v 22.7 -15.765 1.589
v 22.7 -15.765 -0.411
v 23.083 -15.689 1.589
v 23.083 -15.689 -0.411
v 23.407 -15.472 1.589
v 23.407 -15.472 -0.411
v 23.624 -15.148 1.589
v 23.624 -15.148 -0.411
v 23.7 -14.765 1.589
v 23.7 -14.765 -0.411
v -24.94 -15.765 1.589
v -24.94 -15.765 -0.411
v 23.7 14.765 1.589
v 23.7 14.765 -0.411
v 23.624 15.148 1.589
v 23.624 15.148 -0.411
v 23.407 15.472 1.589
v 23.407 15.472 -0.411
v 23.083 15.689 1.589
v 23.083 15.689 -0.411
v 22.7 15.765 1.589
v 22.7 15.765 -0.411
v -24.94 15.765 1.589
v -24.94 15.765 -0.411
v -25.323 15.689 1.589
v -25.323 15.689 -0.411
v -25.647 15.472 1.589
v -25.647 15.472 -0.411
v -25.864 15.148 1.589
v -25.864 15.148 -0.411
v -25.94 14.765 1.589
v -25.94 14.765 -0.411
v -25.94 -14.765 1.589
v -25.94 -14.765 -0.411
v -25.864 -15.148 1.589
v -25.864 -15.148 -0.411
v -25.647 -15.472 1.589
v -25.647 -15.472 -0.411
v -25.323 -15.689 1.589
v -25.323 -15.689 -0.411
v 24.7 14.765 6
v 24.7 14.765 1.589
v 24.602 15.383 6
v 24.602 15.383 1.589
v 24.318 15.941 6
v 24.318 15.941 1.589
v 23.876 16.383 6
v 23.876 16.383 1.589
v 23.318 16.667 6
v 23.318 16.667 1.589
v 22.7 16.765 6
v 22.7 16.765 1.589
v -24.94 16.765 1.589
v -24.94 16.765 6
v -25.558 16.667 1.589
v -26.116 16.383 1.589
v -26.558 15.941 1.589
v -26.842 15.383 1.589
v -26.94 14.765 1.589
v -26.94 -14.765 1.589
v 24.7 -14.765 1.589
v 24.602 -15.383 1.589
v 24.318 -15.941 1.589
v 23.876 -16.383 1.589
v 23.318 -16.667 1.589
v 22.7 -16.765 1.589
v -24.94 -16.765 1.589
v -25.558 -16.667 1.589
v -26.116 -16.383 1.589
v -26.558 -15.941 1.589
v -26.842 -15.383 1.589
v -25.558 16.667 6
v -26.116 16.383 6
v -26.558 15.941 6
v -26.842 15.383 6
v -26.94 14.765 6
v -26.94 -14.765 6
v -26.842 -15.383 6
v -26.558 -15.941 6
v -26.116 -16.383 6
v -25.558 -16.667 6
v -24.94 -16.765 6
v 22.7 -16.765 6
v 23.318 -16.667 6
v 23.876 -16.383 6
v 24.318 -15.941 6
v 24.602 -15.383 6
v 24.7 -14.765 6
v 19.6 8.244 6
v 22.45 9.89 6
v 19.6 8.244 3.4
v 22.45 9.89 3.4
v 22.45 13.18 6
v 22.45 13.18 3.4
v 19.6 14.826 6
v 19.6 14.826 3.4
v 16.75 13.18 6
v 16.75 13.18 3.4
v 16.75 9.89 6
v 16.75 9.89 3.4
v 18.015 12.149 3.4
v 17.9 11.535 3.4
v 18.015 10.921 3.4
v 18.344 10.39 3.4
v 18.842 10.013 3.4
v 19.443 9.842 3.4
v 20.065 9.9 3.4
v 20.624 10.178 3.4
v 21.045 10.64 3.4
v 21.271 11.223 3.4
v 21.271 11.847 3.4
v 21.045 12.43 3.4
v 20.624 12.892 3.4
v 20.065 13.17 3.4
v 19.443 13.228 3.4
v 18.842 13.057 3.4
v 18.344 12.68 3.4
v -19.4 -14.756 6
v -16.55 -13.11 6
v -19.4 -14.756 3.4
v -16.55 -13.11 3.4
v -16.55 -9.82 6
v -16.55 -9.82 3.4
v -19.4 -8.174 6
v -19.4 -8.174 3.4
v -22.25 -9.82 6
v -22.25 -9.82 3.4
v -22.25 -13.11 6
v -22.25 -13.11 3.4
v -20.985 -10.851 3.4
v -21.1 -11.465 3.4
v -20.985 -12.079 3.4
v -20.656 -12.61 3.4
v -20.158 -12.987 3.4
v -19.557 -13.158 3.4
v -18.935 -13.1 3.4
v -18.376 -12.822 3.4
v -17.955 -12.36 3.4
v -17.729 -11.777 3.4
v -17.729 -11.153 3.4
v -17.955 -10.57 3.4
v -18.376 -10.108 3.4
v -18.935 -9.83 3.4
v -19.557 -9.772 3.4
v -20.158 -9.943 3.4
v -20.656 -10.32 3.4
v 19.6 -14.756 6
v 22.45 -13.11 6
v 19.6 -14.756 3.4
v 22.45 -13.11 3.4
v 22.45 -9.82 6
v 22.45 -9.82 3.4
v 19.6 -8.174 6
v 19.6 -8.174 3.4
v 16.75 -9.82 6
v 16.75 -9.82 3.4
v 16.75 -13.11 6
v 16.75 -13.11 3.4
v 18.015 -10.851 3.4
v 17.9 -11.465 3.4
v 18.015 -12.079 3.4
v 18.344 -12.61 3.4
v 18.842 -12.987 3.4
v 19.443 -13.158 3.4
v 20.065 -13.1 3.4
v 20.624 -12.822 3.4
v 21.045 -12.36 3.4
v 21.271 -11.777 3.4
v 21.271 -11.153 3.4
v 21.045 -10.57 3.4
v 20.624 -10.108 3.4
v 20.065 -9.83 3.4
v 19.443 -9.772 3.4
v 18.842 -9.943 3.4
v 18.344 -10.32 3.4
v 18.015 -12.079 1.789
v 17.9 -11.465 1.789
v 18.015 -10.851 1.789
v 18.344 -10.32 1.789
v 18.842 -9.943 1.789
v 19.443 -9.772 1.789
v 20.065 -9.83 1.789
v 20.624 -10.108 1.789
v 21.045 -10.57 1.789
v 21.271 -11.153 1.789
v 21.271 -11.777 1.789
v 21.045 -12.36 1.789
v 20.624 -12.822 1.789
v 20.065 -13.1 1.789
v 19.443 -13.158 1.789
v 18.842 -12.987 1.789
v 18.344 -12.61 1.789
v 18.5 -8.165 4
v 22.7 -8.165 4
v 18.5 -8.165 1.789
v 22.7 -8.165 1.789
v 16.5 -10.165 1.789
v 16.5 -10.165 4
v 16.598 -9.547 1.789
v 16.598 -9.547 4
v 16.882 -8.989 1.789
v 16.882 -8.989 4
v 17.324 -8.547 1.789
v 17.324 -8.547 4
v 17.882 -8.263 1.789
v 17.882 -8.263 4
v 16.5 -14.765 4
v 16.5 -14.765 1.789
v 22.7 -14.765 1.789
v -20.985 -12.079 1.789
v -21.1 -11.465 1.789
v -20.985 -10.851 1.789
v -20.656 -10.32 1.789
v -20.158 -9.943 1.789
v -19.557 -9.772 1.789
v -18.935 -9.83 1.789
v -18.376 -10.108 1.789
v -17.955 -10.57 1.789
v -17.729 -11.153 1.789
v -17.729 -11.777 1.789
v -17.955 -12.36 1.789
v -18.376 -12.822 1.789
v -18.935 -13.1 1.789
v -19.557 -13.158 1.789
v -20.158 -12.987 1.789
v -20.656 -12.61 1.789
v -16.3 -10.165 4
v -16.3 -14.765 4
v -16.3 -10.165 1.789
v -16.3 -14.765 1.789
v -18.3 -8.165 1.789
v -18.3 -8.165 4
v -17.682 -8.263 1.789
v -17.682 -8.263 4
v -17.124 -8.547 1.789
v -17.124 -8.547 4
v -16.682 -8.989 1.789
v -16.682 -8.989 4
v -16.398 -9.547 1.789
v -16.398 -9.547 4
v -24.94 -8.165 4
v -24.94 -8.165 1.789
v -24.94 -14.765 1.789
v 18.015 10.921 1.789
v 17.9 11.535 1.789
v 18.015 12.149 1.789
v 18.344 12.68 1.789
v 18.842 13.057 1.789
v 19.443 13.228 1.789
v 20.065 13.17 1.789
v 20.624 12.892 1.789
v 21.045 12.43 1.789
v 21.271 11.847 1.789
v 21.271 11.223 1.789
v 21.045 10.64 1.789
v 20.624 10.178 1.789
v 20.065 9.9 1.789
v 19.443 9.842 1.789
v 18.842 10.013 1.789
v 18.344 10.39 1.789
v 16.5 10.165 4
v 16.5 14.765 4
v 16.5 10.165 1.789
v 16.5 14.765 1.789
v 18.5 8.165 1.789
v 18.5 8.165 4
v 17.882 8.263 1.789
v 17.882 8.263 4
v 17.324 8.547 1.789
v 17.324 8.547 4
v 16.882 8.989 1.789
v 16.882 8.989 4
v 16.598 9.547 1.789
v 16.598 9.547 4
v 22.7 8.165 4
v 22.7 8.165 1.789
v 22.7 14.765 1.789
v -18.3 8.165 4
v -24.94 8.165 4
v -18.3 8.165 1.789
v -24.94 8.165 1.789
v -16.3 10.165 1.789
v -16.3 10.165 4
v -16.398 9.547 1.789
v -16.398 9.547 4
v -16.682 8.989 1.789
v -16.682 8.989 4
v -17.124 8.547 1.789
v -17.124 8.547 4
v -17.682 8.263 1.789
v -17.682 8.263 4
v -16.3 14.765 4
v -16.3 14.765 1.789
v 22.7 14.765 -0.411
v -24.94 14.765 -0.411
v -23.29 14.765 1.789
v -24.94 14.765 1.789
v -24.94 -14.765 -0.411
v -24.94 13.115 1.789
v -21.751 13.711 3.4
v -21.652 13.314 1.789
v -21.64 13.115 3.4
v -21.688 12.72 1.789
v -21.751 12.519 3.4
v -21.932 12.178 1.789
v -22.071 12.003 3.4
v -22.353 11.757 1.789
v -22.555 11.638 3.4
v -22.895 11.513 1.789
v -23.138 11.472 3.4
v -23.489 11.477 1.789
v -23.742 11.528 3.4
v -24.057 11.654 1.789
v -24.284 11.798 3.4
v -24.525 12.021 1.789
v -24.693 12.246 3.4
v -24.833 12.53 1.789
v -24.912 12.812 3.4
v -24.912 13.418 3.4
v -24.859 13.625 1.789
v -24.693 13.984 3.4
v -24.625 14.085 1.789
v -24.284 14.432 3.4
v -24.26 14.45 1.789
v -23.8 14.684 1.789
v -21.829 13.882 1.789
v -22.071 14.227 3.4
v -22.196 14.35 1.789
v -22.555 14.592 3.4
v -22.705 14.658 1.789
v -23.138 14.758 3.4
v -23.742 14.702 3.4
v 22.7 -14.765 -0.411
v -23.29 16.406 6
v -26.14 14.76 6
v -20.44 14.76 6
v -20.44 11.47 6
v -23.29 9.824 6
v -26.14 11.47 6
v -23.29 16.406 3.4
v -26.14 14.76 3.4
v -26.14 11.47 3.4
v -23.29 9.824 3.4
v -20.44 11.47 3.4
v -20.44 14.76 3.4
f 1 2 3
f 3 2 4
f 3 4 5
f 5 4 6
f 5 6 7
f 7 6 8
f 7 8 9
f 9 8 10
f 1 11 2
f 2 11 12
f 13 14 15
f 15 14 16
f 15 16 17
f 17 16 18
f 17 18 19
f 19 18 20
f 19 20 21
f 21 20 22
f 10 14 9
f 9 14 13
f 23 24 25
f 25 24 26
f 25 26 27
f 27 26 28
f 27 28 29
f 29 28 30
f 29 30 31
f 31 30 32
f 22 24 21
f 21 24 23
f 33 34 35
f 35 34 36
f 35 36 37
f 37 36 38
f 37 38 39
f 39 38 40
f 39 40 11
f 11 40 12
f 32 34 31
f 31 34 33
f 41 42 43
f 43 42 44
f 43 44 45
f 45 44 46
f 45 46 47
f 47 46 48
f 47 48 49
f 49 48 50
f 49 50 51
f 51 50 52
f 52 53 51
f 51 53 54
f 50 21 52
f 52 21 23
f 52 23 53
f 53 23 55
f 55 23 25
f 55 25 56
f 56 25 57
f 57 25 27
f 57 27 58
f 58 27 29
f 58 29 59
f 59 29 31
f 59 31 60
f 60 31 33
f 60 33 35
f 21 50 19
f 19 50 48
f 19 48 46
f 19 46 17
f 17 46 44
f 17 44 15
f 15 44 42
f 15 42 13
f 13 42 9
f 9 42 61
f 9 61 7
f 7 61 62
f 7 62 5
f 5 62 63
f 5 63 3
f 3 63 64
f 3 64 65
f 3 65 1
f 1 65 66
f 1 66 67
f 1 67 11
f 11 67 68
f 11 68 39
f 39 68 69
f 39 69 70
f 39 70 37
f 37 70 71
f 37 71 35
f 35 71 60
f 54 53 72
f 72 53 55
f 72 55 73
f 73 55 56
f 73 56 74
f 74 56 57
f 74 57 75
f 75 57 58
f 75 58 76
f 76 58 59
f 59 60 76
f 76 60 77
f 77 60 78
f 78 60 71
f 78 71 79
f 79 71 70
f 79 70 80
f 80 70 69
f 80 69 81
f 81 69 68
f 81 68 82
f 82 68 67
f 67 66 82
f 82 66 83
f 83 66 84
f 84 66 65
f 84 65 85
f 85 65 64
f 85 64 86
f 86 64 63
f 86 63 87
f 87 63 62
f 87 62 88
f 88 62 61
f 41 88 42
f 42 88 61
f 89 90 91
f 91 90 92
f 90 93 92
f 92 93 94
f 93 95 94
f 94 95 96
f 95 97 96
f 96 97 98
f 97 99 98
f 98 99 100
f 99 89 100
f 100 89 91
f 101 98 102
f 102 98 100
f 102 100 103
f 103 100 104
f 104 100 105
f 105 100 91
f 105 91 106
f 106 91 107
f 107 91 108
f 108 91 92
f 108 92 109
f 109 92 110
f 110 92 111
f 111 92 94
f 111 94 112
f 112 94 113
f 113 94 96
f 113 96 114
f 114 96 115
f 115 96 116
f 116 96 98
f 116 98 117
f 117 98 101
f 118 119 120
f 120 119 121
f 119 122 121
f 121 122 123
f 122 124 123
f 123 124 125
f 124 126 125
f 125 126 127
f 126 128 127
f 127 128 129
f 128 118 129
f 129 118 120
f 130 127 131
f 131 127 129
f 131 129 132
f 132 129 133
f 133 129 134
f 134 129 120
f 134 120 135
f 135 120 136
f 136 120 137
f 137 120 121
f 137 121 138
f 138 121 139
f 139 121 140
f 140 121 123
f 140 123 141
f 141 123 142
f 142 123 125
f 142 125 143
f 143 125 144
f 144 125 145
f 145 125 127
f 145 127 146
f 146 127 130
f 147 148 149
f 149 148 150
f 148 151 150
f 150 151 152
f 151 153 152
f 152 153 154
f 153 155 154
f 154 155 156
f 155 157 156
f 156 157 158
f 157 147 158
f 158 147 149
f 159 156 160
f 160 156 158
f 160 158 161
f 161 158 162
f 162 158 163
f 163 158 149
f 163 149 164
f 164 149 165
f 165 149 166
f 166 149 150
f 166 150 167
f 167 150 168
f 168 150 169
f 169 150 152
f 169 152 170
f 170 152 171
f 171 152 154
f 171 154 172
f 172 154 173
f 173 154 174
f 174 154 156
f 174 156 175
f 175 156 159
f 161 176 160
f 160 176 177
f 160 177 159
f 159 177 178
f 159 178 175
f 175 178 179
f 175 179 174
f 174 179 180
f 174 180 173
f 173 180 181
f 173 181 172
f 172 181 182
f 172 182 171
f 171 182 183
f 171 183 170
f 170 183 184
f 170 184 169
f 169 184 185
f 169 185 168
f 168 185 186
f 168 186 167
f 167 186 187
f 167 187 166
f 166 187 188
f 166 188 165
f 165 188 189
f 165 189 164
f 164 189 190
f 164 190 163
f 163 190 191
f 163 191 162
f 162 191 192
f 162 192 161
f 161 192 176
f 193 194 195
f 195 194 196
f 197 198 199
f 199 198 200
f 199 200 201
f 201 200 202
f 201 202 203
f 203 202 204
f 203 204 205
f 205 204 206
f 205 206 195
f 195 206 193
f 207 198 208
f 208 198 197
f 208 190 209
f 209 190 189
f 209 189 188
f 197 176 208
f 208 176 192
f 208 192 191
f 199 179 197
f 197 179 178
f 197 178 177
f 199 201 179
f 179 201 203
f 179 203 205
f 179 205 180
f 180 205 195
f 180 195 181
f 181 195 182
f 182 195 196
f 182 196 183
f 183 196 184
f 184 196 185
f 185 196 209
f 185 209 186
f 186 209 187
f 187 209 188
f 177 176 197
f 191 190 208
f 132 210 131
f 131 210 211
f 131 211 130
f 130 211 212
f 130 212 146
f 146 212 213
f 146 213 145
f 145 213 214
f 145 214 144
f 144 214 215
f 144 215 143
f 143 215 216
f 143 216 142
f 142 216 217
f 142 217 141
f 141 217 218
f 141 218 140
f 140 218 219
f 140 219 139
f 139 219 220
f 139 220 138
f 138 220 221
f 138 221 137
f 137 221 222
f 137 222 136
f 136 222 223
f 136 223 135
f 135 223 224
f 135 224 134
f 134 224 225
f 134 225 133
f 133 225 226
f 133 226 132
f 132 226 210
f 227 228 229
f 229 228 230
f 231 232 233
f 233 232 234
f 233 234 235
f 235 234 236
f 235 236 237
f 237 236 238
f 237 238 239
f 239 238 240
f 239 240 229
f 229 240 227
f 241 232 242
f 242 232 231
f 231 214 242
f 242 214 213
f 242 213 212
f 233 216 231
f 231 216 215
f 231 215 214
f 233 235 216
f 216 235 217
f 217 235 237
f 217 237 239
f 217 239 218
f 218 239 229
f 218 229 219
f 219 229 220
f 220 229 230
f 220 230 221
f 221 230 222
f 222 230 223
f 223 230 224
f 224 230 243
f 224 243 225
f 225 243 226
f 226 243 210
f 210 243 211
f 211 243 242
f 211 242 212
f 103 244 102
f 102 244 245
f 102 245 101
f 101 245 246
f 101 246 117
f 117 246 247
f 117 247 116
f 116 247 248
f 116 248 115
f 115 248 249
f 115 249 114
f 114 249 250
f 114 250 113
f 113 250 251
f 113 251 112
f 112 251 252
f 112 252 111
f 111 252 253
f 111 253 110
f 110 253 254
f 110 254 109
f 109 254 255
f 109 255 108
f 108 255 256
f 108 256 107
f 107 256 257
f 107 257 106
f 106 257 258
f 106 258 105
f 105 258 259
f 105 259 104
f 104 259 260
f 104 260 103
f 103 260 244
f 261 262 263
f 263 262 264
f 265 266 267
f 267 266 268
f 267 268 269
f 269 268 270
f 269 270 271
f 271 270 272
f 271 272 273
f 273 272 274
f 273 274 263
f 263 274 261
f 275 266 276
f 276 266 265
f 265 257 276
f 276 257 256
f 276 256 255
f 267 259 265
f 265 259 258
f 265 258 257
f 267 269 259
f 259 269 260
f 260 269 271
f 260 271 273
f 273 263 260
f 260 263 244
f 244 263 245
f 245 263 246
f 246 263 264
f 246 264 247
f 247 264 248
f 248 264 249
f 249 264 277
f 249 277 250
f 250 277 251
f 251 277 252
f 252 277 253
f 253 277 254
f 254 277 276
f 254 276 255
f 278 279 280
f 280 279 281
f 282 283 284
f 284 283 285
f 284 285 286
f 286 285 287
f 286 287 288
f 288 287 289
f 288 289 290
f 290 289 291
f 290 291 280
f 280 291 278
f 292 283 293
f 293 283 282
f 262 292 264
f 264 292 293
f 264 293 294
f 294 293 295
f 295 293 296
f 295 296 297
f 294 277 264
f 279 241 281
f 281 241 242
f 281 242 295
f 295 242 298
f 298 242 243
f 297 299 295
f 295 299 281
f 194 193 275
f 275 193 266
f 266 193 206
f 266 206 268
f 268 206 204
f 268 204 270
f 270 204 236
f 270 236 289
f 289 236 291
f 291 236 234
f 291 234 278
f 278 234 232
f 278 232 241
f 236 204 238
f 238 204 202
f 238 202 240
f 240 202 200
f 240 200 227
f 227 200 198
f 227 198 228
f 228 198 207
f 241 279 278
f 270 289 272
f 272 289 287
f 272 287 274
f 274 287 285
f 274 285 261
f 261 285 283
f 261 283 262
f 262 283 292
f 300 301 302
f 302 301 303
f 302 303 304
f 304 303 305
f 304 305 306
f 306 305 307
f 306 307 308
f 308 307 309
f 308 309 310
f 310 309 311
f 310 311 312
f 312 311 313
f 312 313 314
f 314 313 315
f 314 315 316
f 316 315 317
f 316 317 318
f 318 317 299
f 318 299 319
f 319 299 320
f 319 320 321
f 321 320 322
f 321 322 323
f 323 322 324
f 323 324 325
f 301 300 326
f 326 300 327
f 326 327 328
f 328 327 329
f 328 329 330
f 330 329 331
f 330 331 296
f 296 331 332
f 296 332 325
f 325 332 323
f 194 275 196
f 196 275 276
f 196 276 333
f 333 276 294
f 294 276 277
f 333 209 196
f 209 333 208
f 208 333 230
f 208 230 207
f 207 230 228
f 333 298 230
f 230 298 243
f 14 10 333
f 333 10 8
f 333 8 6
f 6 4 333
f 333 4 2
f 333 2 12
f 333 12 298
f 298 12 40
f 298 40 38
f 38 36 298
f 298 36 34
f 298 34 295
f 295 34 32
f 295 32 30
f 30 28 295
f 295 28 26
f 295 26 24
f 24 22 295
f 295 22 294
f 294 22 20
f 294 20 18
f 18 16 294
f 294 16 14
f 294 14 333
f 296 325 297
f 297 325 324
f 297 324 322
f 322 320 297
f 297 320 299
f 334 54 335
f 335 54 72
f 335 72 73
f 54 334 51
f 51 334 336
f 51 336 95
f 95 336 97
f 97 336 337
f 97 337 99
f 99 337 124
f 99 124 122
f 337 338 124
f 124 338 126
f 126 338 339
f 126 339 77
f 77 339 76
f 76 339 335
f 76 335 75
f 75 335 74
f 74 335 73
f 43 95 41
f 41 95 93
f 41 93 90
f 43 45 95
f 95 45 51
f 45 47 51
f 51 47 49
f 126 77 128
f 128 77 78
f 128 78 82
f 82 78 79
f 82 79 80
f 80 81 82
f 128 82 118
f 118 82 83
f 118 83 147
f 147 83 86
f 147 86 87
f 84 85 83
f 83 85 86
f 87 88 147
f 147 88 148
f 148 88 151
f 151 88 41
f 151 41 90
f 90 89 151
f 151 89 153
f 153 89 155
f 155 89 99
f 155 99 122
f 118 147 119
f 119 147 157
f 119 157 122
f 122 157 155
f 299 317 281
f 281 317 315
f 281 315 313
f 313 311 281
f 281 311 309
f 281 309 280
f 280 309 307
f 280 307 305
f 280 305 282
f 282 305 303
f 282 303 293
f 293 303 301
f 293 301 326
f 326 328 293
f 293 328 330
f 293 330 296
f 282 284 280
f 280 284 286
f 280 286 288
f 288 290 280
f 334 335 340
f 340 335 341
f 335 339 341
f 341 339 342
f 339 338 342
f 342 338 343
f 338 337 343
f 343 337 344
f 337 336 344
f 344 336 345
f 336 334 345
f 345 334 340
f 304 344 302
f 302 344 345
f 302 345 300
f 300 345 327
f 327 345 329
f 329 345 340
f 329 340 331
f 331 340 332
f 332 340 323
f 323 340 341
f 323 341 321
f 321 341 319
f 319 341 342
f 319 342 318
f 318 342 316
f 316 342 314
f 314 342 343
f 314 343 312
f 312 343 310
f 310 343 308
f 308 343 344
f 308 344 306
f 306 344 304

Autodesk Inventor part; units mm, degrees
ref_plane "YZ Plane" through (0, 0, 0) normal (1, 0, 0) x (0, 1, 0)
ref_plane "Arbeitsebene1" through (0, 0, 6) normal (0, 0, 1) x (1, 0, 0)
sketch "Skizze3" plane through (0, 0, 6) normal (0, 0, 1) x (1, 0, 0)
  line L0 (22.5, -14.565) -> (22.5, 14.565) projected
  line L1 (-22.5, -14.565) -> (22.5, -14.565) projected
  line L2 (-22.5, 10.565) -> (-22.5, -14.565) projected
  line L3 (22.5, 14.565) -> (-18.5, 14.565) projected
  circle A0 centre (19.6, -11.465) radius 1.5 projected
  circle A1 centre (13.06, -2.125) radius 0.65 projected
  circle A2 centre (13.06, -4.665) radius 0.65 projected
  circle A3 centre (13.06, 0.415) radius 0.65 projected
  circle A4 centre (13.06, 2.955) radius 0.65 projected
  circle A5 centre (-2.18, 5.495) radius 0.65 projected
  circle A6 centre (13.06, 5.495) radius 0.65 projected
  circle A7 centre (19.6, 11.535) radius 1.5 projected
  circle A8 centre (13.06, 8.035) radius 0.65 projected
  circle A9 centre (13.06, 10.575) radius 0.65 projected
  circle A10 centre (-2.18, 8.035) radius 0.65 projected
  circle A11 centre (13.06, 13.115) radius 0.65 projected
  circle A12 centre (-2.18, 10.575) radius 0.65 projected
  circle A13 centre (-7.26, -6.945) radius 0.5 projected
  circle A14 centre (-2.18, -2.125) radius 0.65 projected
  circle A15 centre (-2.18, -4.665) radius 0.65 projected
  circle A16 centre (-12.34, -6.945) radius 0.5 projected
  circle A17 centre (-19.4, -11.465) radius 1.5 projected
  circle A18 centre (-7.26, -4.405) radius 0.5 projected
  circle A19 centre (-12.34, -4.405) radius 0.5 projected
  circle A20 centre (-2.18, 0.415) radius 0.65 projected
  circle A21 centre (-2.18, 13.115) radius 0.65 projected
  circle A22 centre (-2.18, 2.955) radius 0.65 projected
  circle A23 centre (-7.26, -1.865) radius 0.5 projected
  circle A24 centre (-12.34, -1.865) radius 0.5 projected
  circle A25 centre (-7.26, 0.675) radius 0.5 projected
  circle A26 centre (-12.34, 0.675) radius 0.5 projected
  line L4 (-24.7, -16.765) -> (24.7, -16.765)
  line L5 (24.7, -16.765) -> (24.7, 16.765)
  line L6 (24.7, 16.765) -> (-24.7, 16.765)
  line L7 (-24.7, 16.765) -> (-24.7, -16.765)
  line L8 (-24.34, 2.175) -> (-10.84, 2.175) projected
  line L9 (-10.84, 2.175) -> (-10.84, -8.525) projected
  line L10 (-10.84, -8.525) -> (-24.34, -8.525) projected
  line L11 (-24.34, -8.525) -> (-24.34, 2.175) projected
  circle A27 centre (-12.34, -1.865) radius 0.5 projected
  circle A28 centre (-12.34, -4.405) radius 0.5 projected
  circle A29 centre (-12.34, -6.945) radius 0.5 projected
  circle A30 centre (-12.34, 0.675) radius 0.5 projected
  circle A31 centre (-21.39, -0.725) radius 1.5 projected
  line L12 (24.7, 16.765) -> (-26.94, 16.765)
  line L13 (-26.94, 16.765) -> (-26.94, -16.765)
  line L14 (-26.94, -16.765) -> (24.7, -16.765)
  line L15 (24.7, -16.765) -> (24.7, 16.765)
  line L16 (-18.5, 10.565) -> (-18.5, 14.565) projected
  line L17 (-22.5, 10.565) -> (-18.5, 10.565) projected
  point P0 (0, 0)
  point P1 (-24.7, 16.765)
  dimension "d5" = 2.2
  dimension "d6" = 2.6
extrude "Extrusion2" add sketch "Skizze3" against normal blind 2 contours L1 L2 L10 L9 L8 L17 L16 L3 L0 | L10 L11 L8 L2 A31 | L2 A31 L8 L9 L10 | A31 L2 | L2 A31 | A0 | A1 | A2 | A3 | A4 | A5 | A6 | A7 | A8 | A9 | A10 | A11 | A12 | A13 | A14 | A15 | A16 | A17 | A18 | A19 | A20 | A21 | A22 | A23 | A24 | A25 | A26 | L7 L6 L5 L4 | L14 L13 L12 L7
sketch "Skizze4" plane through (0, 0, 4) normal (0, 0, -1) x (-1, 0, 0)
  line L0 (-24.7, 16.765) -> (-24.7, -16.765) projected
  line L1 (-24.7, -16.765) -> (26.94, -16.765) projected
  line L2 (26.94, -16.765) -> (26.94, 16.765) projected
  line L3 (26.94, 16.765) -> (-24.7, 16.765) projected
  line L4 (-22.7, 14.765) -> (-22.7, -14.765)
  line L5 (-22.7, -14.765) -> (24.94, -14.765)
  line L6 (24.94, -14.765) -> (24.94, 14.765)
  line L7 (24.94, 14.765) -> (-22.7, 14.765)
  point P0 (0, 0)
  dimension "d9" = 2
ref_plane "Arbeitsebene2" through (-22.5, -14.565, -0.4115) normal (0, 0, -1) x (0, 1, 0)
extrude "Extrusion3" add sketch "Skizze4" along normal up to surface (4.4115 mm away)
sketch "Skizze5" plane through (24.7, -16.765, -0.4115) normal (0, 0, -1) x (-1, 0, 0)
  line L0 (2, 31.53) -> (2, 2) projected
  line L1 (49.64, 31.53) -> (2, 31.53) projected
  line L2 (49.64, 2) -> (49.64, 31.53) projected
  line L3 (2, 2) -> (49.64, 2) projected
  line L4 (0, 0) -> (0, 33.53) projected
  line L5 (51.64, 0) -> (0, 0) projected
  line L6 (51.64, 33.53) -> (51.64, 0) projected
  line L7 (0, 33.53) -> (51.64, 33.53) projected
  line L8 (50.64, 32.53) -> (50.64, 1)
  line L9 (50.64, 1) -> (1, 1)
  line L10 (1, 1) -> (1, 32.53)
  line L11 (1, 32.53) -> (50.64, 32.53)
  point P0 (24.7, 16.765)
  dimension "d12" = 1
extrude "Extrusion4" cut sketch "Skizze5" against normal blind 2 contours L4 L7 L6 L5
sketch "Skizze6" plane through (0, 0, 4) normal (0, 0, -1) x (-1, 0, 0)
  circle A0 centre (-19.6, 11.535) radius 1.5 projected
  circle A1 centre (-19.6, -11.465) radius 1.5 projected
  circle A2 centre (19.4, -11.465) radius 1.5 projected
  circle A3 centre (-19.6, -11.465) radius 1.7
  circle A4 centre (-19.6, 11.535) radius 1.7
  circle A5 centre (19.4, -11.465) radius 1.7
  line L0 (-22.7, -14.765) -> (24.94, -14.765) projected
  line L1 (-22.7, -14.765) -> (-16.5, -14.765)
  line L2 (-16.5, -14.765) -> (-16.5, -10.165)
  line L3 (-18.5, -8.165) -> (-22.7, -8.165)
  line L4 (-22.7, -8.165) -> (-22.7, -14.765)
  arc A6 (-16.5, -10.165) -> (-18.5, -8.165) centre (-18.5, -10.165) ccw
  line L5 (24.94, 14.765) -> (-22.7, 14.765) projected
  line L6 (-22.7, 14.765) -> (-16.5, 14.765)
  line L7 (-16.5, 14.765) -> (-16.5, 10.165)
  line L8 (-18.5, 8.165) -> (-22.7, 8.165)
  line L9 (-22.7, 8.165) -> (-22.7, 14.765)
  line L10 (24.94, -14.765) -> (16.3, -14.765)
  line L11 (16.3, -14.765) -> (16.3, -10.165)
  line L12 (18.3, -8.165) -> (24.94, -8.165)
  line L13 (24.94, -8.165) -> (24.94, -14.765)
  arc A7 (18.3, -8.165) -> (16.3, -10.165) centre (18.3, -10.165) ccw
  arc A8 (-18.5, 8.165) -> (-16.5, 10.165) centre (-18.5, 10.165) ccw
  line L14 (24.94, 14.765) -> (16.3, 14.765)
  line L15 (16.3, 14.765) -> (16.3, 10.165)
  line L16 (18.3, 8.165) -> (24.94, 8.165)
  line L17 (24.94, 8.165) -> (24.94, 14.765)
  arc A9 (16.3, 10.165) -> (18.3, 8.165) centre (18.3, 10.165) ccw
  point P0 (0, 0)
  point P1 (-16.5, -8.165)
  point P2 (-16.5, 8.165)
  dimension "d15" = 0.2
  dimension "d16" = 0.2
  dimension "d17" = 0.2
  dimension "d18" = 6.2
  dimension "d19" = 6.6
  dimension "d20" = 2
  dimension "d21" = 6.2
  dimension "d22" = 6.6
  dimension "d23" = 3.3
  dimension "d24" = 3.1
  dimension "d25" = 2
  dimension "d26" = 2
ref_plane "Arbeitsebene3" through (-22.5, -14.565, 0) normal (0, 0, 1) x (1, 0, 0)
extrude "Extrusion5" add sketch "Skizze6" along normal blind 2.211 contours L4 L3 A6 L2 L0 | L11 A7 L12 L13 L0 | L17 L16 A9 L15 L5 | L7 A8 L8 L9 L5
sketch "Skizze7" plane through (19.6, 11.535, 4) normal (0, 0, -1) x (-1, 0, 0)
  circle A0 centre (0, 0) radius 1.7 projected
  circle A1 centre (0, -23) radius 1.7 projected
  circle A2 centre (39, -23) radius 1.7 projected
  point P0 (19.6, -11.535)
extrude "Extrusion6" cut sketch "Skizze7" against normal up to surface (2 mm away)
sketch "Skizze8" plane through (0, 0, 6) normal (0, 0, 1) x (1, 0, 0)
  circle A0 centre (19.6, -11.465) radius 1.7 projected
  circle A1 centre (19.6, 11.535) radius 1.7 projected
  circle A2 centre (-19.4, -11.465) radius 1.7 projected
  line L0 (24.7, -16.765) -> (24.7, 16.765) projected
  line L1 (24.7, 16.765) -> (-26.94, 16.765) projected
  line L2 (-26.94, 16.765) -> (-26.94, -16.765) projected
  line L3 (-26.94, -16.765) -> (24.7, -16.765) projected
  line L4 (16.75, -9.8196) -> (19.6, -8.1741)
  line L5 (19.6, -8.1741) -> (22.45, -9.8196)
  line L6 (22.45, -9.8196) -> (22.45, -13.1104)
  line L7 (22.45, -13.1104) -> (19.6, -14.7559)
  line L8 (19.6, -14.7559) -> (16.75, -13.1104)
  line L9 (16.75, -13.1104) -> (16.75, -9.8196)
  line L10 (16.75, 13.1804) -> (19.6, 14.8259)
  line L11 (19.6, 14.8259) -> (22.45, 13.1804)
  line L12 (22.45, 13.1804) -> (22.45, 9.8896)
  line L13 (22.45, 9.8896) -> (19.6, 8.2441)
  line L14 (19.6, 8.2441) -> (16.75, 9.8896)
  line L15 (16.75, 9.8896) -> (16.75, 13.1804)
  line L16 (-22.25, -9.8196) -> (-19.4, -8.1741)
  line L17 (-19.4, -8.1741) -> (-16.55, -9.8196)
  line L18 (-16.55, -9.8196) -> (-16.55, -13.1104)
  line L19 (-16.55, -13.1104) -> (-19.4, -14.7559)
  line L20 (-19.4, -14.7559) -> (-22.25, -13.1104)
  line L21 (-22.25, -13.1104) -> (-22.25, -9.8196)
  line L22 (24.7, -16.765) -> (24.7, 16.765) projected
  point P0 (0, 0)
  dimension "d31" = 5.7
  dimension "d32" = 5.7
  dimension "d33" = 5.7
extrude "Extrusion7" cut sketch "Skizze8" against normal blind 2.6 contours A0 | A1 | A2 | L4 L5 L6 L7 L8 L9 | L10 L11 L12 L13 L14 L15 | L16 L17 L18 L19 L20 L21
fillet "Rundung1" radius 2 4 edges at (24.7, -16.765, 3.7943) (-26.94, -16.765, 3.7943) (-26.94, 16.765, 5) (24.7, 16.765, 3.7943)
fillet "Rundung2" radius 1 4 edges at (-25.94, -15.765, 0.5885) (-25.94, 15.765, 0.5885) (23.7, 15.765, 0.5885) (23.7, -15.765, 0.5885)
sketch "Skizze9" plane through (0, 0, 1.789) normal (0, 0, -1) x (-1, 0, 0)
  line L0 (24.94, 14.765) -> (24.94, 8.165) projected
  line L1 (24.94, 14.765) -> (21.64, 14.765)
  line L2 (21.64, 14.765) -> (21.64, 11.465)
  line L3 (21.64, 11.465) -> (24.94, 11.465)
  line L4 (24.94, 11.465) -> (24.94, 14.765)
  circle A0 centre (23.29, 13.115) radius 1.65
  point P0 (0, 0)
  dimension "d38" = 3.3
  dimension "d39" = 3.3
extrude "Extrusion8" cut sketch "Skizze9" against normal blind 10 contours A0
sketch "Skizze10" plane through (0, 0, 6) normal (0, 0, 1) x (1, 0, 0)
  arc A0 (-24.94, 13.115) -> (-23.29, 14.765) centre (-23.29, 13.115) ccw projected
  line L0 (-20.44, 11.4696) -> (-23.29, 9.8241)
  line L1 (-23.29, 9.8241) -> (-26.14, 11.4696)
  line L2 (-26.14, 11.4696) -> (-26.14, 14.7604)
  line L3 (-26.14, 14.7604) -> (-23.29, 16.4059)
  line L4 (-23.29, 16.4059) -> (-20.44, 14.7604)
  line L5 (-20.44, 14.7604) -> (-20.44, 11.4696)
  line L6 (-26.94, 14.765) -> (-26.94, -14.765) projected
  point P0 (0, 0)
  point P1 (-26.14, 13.115)
  dimension "d42" = 5.7
extrude "Extrusion9" cut sketch "Skizze10" against normal blind 2.6
properties part number "Gehaeuse_unten"
